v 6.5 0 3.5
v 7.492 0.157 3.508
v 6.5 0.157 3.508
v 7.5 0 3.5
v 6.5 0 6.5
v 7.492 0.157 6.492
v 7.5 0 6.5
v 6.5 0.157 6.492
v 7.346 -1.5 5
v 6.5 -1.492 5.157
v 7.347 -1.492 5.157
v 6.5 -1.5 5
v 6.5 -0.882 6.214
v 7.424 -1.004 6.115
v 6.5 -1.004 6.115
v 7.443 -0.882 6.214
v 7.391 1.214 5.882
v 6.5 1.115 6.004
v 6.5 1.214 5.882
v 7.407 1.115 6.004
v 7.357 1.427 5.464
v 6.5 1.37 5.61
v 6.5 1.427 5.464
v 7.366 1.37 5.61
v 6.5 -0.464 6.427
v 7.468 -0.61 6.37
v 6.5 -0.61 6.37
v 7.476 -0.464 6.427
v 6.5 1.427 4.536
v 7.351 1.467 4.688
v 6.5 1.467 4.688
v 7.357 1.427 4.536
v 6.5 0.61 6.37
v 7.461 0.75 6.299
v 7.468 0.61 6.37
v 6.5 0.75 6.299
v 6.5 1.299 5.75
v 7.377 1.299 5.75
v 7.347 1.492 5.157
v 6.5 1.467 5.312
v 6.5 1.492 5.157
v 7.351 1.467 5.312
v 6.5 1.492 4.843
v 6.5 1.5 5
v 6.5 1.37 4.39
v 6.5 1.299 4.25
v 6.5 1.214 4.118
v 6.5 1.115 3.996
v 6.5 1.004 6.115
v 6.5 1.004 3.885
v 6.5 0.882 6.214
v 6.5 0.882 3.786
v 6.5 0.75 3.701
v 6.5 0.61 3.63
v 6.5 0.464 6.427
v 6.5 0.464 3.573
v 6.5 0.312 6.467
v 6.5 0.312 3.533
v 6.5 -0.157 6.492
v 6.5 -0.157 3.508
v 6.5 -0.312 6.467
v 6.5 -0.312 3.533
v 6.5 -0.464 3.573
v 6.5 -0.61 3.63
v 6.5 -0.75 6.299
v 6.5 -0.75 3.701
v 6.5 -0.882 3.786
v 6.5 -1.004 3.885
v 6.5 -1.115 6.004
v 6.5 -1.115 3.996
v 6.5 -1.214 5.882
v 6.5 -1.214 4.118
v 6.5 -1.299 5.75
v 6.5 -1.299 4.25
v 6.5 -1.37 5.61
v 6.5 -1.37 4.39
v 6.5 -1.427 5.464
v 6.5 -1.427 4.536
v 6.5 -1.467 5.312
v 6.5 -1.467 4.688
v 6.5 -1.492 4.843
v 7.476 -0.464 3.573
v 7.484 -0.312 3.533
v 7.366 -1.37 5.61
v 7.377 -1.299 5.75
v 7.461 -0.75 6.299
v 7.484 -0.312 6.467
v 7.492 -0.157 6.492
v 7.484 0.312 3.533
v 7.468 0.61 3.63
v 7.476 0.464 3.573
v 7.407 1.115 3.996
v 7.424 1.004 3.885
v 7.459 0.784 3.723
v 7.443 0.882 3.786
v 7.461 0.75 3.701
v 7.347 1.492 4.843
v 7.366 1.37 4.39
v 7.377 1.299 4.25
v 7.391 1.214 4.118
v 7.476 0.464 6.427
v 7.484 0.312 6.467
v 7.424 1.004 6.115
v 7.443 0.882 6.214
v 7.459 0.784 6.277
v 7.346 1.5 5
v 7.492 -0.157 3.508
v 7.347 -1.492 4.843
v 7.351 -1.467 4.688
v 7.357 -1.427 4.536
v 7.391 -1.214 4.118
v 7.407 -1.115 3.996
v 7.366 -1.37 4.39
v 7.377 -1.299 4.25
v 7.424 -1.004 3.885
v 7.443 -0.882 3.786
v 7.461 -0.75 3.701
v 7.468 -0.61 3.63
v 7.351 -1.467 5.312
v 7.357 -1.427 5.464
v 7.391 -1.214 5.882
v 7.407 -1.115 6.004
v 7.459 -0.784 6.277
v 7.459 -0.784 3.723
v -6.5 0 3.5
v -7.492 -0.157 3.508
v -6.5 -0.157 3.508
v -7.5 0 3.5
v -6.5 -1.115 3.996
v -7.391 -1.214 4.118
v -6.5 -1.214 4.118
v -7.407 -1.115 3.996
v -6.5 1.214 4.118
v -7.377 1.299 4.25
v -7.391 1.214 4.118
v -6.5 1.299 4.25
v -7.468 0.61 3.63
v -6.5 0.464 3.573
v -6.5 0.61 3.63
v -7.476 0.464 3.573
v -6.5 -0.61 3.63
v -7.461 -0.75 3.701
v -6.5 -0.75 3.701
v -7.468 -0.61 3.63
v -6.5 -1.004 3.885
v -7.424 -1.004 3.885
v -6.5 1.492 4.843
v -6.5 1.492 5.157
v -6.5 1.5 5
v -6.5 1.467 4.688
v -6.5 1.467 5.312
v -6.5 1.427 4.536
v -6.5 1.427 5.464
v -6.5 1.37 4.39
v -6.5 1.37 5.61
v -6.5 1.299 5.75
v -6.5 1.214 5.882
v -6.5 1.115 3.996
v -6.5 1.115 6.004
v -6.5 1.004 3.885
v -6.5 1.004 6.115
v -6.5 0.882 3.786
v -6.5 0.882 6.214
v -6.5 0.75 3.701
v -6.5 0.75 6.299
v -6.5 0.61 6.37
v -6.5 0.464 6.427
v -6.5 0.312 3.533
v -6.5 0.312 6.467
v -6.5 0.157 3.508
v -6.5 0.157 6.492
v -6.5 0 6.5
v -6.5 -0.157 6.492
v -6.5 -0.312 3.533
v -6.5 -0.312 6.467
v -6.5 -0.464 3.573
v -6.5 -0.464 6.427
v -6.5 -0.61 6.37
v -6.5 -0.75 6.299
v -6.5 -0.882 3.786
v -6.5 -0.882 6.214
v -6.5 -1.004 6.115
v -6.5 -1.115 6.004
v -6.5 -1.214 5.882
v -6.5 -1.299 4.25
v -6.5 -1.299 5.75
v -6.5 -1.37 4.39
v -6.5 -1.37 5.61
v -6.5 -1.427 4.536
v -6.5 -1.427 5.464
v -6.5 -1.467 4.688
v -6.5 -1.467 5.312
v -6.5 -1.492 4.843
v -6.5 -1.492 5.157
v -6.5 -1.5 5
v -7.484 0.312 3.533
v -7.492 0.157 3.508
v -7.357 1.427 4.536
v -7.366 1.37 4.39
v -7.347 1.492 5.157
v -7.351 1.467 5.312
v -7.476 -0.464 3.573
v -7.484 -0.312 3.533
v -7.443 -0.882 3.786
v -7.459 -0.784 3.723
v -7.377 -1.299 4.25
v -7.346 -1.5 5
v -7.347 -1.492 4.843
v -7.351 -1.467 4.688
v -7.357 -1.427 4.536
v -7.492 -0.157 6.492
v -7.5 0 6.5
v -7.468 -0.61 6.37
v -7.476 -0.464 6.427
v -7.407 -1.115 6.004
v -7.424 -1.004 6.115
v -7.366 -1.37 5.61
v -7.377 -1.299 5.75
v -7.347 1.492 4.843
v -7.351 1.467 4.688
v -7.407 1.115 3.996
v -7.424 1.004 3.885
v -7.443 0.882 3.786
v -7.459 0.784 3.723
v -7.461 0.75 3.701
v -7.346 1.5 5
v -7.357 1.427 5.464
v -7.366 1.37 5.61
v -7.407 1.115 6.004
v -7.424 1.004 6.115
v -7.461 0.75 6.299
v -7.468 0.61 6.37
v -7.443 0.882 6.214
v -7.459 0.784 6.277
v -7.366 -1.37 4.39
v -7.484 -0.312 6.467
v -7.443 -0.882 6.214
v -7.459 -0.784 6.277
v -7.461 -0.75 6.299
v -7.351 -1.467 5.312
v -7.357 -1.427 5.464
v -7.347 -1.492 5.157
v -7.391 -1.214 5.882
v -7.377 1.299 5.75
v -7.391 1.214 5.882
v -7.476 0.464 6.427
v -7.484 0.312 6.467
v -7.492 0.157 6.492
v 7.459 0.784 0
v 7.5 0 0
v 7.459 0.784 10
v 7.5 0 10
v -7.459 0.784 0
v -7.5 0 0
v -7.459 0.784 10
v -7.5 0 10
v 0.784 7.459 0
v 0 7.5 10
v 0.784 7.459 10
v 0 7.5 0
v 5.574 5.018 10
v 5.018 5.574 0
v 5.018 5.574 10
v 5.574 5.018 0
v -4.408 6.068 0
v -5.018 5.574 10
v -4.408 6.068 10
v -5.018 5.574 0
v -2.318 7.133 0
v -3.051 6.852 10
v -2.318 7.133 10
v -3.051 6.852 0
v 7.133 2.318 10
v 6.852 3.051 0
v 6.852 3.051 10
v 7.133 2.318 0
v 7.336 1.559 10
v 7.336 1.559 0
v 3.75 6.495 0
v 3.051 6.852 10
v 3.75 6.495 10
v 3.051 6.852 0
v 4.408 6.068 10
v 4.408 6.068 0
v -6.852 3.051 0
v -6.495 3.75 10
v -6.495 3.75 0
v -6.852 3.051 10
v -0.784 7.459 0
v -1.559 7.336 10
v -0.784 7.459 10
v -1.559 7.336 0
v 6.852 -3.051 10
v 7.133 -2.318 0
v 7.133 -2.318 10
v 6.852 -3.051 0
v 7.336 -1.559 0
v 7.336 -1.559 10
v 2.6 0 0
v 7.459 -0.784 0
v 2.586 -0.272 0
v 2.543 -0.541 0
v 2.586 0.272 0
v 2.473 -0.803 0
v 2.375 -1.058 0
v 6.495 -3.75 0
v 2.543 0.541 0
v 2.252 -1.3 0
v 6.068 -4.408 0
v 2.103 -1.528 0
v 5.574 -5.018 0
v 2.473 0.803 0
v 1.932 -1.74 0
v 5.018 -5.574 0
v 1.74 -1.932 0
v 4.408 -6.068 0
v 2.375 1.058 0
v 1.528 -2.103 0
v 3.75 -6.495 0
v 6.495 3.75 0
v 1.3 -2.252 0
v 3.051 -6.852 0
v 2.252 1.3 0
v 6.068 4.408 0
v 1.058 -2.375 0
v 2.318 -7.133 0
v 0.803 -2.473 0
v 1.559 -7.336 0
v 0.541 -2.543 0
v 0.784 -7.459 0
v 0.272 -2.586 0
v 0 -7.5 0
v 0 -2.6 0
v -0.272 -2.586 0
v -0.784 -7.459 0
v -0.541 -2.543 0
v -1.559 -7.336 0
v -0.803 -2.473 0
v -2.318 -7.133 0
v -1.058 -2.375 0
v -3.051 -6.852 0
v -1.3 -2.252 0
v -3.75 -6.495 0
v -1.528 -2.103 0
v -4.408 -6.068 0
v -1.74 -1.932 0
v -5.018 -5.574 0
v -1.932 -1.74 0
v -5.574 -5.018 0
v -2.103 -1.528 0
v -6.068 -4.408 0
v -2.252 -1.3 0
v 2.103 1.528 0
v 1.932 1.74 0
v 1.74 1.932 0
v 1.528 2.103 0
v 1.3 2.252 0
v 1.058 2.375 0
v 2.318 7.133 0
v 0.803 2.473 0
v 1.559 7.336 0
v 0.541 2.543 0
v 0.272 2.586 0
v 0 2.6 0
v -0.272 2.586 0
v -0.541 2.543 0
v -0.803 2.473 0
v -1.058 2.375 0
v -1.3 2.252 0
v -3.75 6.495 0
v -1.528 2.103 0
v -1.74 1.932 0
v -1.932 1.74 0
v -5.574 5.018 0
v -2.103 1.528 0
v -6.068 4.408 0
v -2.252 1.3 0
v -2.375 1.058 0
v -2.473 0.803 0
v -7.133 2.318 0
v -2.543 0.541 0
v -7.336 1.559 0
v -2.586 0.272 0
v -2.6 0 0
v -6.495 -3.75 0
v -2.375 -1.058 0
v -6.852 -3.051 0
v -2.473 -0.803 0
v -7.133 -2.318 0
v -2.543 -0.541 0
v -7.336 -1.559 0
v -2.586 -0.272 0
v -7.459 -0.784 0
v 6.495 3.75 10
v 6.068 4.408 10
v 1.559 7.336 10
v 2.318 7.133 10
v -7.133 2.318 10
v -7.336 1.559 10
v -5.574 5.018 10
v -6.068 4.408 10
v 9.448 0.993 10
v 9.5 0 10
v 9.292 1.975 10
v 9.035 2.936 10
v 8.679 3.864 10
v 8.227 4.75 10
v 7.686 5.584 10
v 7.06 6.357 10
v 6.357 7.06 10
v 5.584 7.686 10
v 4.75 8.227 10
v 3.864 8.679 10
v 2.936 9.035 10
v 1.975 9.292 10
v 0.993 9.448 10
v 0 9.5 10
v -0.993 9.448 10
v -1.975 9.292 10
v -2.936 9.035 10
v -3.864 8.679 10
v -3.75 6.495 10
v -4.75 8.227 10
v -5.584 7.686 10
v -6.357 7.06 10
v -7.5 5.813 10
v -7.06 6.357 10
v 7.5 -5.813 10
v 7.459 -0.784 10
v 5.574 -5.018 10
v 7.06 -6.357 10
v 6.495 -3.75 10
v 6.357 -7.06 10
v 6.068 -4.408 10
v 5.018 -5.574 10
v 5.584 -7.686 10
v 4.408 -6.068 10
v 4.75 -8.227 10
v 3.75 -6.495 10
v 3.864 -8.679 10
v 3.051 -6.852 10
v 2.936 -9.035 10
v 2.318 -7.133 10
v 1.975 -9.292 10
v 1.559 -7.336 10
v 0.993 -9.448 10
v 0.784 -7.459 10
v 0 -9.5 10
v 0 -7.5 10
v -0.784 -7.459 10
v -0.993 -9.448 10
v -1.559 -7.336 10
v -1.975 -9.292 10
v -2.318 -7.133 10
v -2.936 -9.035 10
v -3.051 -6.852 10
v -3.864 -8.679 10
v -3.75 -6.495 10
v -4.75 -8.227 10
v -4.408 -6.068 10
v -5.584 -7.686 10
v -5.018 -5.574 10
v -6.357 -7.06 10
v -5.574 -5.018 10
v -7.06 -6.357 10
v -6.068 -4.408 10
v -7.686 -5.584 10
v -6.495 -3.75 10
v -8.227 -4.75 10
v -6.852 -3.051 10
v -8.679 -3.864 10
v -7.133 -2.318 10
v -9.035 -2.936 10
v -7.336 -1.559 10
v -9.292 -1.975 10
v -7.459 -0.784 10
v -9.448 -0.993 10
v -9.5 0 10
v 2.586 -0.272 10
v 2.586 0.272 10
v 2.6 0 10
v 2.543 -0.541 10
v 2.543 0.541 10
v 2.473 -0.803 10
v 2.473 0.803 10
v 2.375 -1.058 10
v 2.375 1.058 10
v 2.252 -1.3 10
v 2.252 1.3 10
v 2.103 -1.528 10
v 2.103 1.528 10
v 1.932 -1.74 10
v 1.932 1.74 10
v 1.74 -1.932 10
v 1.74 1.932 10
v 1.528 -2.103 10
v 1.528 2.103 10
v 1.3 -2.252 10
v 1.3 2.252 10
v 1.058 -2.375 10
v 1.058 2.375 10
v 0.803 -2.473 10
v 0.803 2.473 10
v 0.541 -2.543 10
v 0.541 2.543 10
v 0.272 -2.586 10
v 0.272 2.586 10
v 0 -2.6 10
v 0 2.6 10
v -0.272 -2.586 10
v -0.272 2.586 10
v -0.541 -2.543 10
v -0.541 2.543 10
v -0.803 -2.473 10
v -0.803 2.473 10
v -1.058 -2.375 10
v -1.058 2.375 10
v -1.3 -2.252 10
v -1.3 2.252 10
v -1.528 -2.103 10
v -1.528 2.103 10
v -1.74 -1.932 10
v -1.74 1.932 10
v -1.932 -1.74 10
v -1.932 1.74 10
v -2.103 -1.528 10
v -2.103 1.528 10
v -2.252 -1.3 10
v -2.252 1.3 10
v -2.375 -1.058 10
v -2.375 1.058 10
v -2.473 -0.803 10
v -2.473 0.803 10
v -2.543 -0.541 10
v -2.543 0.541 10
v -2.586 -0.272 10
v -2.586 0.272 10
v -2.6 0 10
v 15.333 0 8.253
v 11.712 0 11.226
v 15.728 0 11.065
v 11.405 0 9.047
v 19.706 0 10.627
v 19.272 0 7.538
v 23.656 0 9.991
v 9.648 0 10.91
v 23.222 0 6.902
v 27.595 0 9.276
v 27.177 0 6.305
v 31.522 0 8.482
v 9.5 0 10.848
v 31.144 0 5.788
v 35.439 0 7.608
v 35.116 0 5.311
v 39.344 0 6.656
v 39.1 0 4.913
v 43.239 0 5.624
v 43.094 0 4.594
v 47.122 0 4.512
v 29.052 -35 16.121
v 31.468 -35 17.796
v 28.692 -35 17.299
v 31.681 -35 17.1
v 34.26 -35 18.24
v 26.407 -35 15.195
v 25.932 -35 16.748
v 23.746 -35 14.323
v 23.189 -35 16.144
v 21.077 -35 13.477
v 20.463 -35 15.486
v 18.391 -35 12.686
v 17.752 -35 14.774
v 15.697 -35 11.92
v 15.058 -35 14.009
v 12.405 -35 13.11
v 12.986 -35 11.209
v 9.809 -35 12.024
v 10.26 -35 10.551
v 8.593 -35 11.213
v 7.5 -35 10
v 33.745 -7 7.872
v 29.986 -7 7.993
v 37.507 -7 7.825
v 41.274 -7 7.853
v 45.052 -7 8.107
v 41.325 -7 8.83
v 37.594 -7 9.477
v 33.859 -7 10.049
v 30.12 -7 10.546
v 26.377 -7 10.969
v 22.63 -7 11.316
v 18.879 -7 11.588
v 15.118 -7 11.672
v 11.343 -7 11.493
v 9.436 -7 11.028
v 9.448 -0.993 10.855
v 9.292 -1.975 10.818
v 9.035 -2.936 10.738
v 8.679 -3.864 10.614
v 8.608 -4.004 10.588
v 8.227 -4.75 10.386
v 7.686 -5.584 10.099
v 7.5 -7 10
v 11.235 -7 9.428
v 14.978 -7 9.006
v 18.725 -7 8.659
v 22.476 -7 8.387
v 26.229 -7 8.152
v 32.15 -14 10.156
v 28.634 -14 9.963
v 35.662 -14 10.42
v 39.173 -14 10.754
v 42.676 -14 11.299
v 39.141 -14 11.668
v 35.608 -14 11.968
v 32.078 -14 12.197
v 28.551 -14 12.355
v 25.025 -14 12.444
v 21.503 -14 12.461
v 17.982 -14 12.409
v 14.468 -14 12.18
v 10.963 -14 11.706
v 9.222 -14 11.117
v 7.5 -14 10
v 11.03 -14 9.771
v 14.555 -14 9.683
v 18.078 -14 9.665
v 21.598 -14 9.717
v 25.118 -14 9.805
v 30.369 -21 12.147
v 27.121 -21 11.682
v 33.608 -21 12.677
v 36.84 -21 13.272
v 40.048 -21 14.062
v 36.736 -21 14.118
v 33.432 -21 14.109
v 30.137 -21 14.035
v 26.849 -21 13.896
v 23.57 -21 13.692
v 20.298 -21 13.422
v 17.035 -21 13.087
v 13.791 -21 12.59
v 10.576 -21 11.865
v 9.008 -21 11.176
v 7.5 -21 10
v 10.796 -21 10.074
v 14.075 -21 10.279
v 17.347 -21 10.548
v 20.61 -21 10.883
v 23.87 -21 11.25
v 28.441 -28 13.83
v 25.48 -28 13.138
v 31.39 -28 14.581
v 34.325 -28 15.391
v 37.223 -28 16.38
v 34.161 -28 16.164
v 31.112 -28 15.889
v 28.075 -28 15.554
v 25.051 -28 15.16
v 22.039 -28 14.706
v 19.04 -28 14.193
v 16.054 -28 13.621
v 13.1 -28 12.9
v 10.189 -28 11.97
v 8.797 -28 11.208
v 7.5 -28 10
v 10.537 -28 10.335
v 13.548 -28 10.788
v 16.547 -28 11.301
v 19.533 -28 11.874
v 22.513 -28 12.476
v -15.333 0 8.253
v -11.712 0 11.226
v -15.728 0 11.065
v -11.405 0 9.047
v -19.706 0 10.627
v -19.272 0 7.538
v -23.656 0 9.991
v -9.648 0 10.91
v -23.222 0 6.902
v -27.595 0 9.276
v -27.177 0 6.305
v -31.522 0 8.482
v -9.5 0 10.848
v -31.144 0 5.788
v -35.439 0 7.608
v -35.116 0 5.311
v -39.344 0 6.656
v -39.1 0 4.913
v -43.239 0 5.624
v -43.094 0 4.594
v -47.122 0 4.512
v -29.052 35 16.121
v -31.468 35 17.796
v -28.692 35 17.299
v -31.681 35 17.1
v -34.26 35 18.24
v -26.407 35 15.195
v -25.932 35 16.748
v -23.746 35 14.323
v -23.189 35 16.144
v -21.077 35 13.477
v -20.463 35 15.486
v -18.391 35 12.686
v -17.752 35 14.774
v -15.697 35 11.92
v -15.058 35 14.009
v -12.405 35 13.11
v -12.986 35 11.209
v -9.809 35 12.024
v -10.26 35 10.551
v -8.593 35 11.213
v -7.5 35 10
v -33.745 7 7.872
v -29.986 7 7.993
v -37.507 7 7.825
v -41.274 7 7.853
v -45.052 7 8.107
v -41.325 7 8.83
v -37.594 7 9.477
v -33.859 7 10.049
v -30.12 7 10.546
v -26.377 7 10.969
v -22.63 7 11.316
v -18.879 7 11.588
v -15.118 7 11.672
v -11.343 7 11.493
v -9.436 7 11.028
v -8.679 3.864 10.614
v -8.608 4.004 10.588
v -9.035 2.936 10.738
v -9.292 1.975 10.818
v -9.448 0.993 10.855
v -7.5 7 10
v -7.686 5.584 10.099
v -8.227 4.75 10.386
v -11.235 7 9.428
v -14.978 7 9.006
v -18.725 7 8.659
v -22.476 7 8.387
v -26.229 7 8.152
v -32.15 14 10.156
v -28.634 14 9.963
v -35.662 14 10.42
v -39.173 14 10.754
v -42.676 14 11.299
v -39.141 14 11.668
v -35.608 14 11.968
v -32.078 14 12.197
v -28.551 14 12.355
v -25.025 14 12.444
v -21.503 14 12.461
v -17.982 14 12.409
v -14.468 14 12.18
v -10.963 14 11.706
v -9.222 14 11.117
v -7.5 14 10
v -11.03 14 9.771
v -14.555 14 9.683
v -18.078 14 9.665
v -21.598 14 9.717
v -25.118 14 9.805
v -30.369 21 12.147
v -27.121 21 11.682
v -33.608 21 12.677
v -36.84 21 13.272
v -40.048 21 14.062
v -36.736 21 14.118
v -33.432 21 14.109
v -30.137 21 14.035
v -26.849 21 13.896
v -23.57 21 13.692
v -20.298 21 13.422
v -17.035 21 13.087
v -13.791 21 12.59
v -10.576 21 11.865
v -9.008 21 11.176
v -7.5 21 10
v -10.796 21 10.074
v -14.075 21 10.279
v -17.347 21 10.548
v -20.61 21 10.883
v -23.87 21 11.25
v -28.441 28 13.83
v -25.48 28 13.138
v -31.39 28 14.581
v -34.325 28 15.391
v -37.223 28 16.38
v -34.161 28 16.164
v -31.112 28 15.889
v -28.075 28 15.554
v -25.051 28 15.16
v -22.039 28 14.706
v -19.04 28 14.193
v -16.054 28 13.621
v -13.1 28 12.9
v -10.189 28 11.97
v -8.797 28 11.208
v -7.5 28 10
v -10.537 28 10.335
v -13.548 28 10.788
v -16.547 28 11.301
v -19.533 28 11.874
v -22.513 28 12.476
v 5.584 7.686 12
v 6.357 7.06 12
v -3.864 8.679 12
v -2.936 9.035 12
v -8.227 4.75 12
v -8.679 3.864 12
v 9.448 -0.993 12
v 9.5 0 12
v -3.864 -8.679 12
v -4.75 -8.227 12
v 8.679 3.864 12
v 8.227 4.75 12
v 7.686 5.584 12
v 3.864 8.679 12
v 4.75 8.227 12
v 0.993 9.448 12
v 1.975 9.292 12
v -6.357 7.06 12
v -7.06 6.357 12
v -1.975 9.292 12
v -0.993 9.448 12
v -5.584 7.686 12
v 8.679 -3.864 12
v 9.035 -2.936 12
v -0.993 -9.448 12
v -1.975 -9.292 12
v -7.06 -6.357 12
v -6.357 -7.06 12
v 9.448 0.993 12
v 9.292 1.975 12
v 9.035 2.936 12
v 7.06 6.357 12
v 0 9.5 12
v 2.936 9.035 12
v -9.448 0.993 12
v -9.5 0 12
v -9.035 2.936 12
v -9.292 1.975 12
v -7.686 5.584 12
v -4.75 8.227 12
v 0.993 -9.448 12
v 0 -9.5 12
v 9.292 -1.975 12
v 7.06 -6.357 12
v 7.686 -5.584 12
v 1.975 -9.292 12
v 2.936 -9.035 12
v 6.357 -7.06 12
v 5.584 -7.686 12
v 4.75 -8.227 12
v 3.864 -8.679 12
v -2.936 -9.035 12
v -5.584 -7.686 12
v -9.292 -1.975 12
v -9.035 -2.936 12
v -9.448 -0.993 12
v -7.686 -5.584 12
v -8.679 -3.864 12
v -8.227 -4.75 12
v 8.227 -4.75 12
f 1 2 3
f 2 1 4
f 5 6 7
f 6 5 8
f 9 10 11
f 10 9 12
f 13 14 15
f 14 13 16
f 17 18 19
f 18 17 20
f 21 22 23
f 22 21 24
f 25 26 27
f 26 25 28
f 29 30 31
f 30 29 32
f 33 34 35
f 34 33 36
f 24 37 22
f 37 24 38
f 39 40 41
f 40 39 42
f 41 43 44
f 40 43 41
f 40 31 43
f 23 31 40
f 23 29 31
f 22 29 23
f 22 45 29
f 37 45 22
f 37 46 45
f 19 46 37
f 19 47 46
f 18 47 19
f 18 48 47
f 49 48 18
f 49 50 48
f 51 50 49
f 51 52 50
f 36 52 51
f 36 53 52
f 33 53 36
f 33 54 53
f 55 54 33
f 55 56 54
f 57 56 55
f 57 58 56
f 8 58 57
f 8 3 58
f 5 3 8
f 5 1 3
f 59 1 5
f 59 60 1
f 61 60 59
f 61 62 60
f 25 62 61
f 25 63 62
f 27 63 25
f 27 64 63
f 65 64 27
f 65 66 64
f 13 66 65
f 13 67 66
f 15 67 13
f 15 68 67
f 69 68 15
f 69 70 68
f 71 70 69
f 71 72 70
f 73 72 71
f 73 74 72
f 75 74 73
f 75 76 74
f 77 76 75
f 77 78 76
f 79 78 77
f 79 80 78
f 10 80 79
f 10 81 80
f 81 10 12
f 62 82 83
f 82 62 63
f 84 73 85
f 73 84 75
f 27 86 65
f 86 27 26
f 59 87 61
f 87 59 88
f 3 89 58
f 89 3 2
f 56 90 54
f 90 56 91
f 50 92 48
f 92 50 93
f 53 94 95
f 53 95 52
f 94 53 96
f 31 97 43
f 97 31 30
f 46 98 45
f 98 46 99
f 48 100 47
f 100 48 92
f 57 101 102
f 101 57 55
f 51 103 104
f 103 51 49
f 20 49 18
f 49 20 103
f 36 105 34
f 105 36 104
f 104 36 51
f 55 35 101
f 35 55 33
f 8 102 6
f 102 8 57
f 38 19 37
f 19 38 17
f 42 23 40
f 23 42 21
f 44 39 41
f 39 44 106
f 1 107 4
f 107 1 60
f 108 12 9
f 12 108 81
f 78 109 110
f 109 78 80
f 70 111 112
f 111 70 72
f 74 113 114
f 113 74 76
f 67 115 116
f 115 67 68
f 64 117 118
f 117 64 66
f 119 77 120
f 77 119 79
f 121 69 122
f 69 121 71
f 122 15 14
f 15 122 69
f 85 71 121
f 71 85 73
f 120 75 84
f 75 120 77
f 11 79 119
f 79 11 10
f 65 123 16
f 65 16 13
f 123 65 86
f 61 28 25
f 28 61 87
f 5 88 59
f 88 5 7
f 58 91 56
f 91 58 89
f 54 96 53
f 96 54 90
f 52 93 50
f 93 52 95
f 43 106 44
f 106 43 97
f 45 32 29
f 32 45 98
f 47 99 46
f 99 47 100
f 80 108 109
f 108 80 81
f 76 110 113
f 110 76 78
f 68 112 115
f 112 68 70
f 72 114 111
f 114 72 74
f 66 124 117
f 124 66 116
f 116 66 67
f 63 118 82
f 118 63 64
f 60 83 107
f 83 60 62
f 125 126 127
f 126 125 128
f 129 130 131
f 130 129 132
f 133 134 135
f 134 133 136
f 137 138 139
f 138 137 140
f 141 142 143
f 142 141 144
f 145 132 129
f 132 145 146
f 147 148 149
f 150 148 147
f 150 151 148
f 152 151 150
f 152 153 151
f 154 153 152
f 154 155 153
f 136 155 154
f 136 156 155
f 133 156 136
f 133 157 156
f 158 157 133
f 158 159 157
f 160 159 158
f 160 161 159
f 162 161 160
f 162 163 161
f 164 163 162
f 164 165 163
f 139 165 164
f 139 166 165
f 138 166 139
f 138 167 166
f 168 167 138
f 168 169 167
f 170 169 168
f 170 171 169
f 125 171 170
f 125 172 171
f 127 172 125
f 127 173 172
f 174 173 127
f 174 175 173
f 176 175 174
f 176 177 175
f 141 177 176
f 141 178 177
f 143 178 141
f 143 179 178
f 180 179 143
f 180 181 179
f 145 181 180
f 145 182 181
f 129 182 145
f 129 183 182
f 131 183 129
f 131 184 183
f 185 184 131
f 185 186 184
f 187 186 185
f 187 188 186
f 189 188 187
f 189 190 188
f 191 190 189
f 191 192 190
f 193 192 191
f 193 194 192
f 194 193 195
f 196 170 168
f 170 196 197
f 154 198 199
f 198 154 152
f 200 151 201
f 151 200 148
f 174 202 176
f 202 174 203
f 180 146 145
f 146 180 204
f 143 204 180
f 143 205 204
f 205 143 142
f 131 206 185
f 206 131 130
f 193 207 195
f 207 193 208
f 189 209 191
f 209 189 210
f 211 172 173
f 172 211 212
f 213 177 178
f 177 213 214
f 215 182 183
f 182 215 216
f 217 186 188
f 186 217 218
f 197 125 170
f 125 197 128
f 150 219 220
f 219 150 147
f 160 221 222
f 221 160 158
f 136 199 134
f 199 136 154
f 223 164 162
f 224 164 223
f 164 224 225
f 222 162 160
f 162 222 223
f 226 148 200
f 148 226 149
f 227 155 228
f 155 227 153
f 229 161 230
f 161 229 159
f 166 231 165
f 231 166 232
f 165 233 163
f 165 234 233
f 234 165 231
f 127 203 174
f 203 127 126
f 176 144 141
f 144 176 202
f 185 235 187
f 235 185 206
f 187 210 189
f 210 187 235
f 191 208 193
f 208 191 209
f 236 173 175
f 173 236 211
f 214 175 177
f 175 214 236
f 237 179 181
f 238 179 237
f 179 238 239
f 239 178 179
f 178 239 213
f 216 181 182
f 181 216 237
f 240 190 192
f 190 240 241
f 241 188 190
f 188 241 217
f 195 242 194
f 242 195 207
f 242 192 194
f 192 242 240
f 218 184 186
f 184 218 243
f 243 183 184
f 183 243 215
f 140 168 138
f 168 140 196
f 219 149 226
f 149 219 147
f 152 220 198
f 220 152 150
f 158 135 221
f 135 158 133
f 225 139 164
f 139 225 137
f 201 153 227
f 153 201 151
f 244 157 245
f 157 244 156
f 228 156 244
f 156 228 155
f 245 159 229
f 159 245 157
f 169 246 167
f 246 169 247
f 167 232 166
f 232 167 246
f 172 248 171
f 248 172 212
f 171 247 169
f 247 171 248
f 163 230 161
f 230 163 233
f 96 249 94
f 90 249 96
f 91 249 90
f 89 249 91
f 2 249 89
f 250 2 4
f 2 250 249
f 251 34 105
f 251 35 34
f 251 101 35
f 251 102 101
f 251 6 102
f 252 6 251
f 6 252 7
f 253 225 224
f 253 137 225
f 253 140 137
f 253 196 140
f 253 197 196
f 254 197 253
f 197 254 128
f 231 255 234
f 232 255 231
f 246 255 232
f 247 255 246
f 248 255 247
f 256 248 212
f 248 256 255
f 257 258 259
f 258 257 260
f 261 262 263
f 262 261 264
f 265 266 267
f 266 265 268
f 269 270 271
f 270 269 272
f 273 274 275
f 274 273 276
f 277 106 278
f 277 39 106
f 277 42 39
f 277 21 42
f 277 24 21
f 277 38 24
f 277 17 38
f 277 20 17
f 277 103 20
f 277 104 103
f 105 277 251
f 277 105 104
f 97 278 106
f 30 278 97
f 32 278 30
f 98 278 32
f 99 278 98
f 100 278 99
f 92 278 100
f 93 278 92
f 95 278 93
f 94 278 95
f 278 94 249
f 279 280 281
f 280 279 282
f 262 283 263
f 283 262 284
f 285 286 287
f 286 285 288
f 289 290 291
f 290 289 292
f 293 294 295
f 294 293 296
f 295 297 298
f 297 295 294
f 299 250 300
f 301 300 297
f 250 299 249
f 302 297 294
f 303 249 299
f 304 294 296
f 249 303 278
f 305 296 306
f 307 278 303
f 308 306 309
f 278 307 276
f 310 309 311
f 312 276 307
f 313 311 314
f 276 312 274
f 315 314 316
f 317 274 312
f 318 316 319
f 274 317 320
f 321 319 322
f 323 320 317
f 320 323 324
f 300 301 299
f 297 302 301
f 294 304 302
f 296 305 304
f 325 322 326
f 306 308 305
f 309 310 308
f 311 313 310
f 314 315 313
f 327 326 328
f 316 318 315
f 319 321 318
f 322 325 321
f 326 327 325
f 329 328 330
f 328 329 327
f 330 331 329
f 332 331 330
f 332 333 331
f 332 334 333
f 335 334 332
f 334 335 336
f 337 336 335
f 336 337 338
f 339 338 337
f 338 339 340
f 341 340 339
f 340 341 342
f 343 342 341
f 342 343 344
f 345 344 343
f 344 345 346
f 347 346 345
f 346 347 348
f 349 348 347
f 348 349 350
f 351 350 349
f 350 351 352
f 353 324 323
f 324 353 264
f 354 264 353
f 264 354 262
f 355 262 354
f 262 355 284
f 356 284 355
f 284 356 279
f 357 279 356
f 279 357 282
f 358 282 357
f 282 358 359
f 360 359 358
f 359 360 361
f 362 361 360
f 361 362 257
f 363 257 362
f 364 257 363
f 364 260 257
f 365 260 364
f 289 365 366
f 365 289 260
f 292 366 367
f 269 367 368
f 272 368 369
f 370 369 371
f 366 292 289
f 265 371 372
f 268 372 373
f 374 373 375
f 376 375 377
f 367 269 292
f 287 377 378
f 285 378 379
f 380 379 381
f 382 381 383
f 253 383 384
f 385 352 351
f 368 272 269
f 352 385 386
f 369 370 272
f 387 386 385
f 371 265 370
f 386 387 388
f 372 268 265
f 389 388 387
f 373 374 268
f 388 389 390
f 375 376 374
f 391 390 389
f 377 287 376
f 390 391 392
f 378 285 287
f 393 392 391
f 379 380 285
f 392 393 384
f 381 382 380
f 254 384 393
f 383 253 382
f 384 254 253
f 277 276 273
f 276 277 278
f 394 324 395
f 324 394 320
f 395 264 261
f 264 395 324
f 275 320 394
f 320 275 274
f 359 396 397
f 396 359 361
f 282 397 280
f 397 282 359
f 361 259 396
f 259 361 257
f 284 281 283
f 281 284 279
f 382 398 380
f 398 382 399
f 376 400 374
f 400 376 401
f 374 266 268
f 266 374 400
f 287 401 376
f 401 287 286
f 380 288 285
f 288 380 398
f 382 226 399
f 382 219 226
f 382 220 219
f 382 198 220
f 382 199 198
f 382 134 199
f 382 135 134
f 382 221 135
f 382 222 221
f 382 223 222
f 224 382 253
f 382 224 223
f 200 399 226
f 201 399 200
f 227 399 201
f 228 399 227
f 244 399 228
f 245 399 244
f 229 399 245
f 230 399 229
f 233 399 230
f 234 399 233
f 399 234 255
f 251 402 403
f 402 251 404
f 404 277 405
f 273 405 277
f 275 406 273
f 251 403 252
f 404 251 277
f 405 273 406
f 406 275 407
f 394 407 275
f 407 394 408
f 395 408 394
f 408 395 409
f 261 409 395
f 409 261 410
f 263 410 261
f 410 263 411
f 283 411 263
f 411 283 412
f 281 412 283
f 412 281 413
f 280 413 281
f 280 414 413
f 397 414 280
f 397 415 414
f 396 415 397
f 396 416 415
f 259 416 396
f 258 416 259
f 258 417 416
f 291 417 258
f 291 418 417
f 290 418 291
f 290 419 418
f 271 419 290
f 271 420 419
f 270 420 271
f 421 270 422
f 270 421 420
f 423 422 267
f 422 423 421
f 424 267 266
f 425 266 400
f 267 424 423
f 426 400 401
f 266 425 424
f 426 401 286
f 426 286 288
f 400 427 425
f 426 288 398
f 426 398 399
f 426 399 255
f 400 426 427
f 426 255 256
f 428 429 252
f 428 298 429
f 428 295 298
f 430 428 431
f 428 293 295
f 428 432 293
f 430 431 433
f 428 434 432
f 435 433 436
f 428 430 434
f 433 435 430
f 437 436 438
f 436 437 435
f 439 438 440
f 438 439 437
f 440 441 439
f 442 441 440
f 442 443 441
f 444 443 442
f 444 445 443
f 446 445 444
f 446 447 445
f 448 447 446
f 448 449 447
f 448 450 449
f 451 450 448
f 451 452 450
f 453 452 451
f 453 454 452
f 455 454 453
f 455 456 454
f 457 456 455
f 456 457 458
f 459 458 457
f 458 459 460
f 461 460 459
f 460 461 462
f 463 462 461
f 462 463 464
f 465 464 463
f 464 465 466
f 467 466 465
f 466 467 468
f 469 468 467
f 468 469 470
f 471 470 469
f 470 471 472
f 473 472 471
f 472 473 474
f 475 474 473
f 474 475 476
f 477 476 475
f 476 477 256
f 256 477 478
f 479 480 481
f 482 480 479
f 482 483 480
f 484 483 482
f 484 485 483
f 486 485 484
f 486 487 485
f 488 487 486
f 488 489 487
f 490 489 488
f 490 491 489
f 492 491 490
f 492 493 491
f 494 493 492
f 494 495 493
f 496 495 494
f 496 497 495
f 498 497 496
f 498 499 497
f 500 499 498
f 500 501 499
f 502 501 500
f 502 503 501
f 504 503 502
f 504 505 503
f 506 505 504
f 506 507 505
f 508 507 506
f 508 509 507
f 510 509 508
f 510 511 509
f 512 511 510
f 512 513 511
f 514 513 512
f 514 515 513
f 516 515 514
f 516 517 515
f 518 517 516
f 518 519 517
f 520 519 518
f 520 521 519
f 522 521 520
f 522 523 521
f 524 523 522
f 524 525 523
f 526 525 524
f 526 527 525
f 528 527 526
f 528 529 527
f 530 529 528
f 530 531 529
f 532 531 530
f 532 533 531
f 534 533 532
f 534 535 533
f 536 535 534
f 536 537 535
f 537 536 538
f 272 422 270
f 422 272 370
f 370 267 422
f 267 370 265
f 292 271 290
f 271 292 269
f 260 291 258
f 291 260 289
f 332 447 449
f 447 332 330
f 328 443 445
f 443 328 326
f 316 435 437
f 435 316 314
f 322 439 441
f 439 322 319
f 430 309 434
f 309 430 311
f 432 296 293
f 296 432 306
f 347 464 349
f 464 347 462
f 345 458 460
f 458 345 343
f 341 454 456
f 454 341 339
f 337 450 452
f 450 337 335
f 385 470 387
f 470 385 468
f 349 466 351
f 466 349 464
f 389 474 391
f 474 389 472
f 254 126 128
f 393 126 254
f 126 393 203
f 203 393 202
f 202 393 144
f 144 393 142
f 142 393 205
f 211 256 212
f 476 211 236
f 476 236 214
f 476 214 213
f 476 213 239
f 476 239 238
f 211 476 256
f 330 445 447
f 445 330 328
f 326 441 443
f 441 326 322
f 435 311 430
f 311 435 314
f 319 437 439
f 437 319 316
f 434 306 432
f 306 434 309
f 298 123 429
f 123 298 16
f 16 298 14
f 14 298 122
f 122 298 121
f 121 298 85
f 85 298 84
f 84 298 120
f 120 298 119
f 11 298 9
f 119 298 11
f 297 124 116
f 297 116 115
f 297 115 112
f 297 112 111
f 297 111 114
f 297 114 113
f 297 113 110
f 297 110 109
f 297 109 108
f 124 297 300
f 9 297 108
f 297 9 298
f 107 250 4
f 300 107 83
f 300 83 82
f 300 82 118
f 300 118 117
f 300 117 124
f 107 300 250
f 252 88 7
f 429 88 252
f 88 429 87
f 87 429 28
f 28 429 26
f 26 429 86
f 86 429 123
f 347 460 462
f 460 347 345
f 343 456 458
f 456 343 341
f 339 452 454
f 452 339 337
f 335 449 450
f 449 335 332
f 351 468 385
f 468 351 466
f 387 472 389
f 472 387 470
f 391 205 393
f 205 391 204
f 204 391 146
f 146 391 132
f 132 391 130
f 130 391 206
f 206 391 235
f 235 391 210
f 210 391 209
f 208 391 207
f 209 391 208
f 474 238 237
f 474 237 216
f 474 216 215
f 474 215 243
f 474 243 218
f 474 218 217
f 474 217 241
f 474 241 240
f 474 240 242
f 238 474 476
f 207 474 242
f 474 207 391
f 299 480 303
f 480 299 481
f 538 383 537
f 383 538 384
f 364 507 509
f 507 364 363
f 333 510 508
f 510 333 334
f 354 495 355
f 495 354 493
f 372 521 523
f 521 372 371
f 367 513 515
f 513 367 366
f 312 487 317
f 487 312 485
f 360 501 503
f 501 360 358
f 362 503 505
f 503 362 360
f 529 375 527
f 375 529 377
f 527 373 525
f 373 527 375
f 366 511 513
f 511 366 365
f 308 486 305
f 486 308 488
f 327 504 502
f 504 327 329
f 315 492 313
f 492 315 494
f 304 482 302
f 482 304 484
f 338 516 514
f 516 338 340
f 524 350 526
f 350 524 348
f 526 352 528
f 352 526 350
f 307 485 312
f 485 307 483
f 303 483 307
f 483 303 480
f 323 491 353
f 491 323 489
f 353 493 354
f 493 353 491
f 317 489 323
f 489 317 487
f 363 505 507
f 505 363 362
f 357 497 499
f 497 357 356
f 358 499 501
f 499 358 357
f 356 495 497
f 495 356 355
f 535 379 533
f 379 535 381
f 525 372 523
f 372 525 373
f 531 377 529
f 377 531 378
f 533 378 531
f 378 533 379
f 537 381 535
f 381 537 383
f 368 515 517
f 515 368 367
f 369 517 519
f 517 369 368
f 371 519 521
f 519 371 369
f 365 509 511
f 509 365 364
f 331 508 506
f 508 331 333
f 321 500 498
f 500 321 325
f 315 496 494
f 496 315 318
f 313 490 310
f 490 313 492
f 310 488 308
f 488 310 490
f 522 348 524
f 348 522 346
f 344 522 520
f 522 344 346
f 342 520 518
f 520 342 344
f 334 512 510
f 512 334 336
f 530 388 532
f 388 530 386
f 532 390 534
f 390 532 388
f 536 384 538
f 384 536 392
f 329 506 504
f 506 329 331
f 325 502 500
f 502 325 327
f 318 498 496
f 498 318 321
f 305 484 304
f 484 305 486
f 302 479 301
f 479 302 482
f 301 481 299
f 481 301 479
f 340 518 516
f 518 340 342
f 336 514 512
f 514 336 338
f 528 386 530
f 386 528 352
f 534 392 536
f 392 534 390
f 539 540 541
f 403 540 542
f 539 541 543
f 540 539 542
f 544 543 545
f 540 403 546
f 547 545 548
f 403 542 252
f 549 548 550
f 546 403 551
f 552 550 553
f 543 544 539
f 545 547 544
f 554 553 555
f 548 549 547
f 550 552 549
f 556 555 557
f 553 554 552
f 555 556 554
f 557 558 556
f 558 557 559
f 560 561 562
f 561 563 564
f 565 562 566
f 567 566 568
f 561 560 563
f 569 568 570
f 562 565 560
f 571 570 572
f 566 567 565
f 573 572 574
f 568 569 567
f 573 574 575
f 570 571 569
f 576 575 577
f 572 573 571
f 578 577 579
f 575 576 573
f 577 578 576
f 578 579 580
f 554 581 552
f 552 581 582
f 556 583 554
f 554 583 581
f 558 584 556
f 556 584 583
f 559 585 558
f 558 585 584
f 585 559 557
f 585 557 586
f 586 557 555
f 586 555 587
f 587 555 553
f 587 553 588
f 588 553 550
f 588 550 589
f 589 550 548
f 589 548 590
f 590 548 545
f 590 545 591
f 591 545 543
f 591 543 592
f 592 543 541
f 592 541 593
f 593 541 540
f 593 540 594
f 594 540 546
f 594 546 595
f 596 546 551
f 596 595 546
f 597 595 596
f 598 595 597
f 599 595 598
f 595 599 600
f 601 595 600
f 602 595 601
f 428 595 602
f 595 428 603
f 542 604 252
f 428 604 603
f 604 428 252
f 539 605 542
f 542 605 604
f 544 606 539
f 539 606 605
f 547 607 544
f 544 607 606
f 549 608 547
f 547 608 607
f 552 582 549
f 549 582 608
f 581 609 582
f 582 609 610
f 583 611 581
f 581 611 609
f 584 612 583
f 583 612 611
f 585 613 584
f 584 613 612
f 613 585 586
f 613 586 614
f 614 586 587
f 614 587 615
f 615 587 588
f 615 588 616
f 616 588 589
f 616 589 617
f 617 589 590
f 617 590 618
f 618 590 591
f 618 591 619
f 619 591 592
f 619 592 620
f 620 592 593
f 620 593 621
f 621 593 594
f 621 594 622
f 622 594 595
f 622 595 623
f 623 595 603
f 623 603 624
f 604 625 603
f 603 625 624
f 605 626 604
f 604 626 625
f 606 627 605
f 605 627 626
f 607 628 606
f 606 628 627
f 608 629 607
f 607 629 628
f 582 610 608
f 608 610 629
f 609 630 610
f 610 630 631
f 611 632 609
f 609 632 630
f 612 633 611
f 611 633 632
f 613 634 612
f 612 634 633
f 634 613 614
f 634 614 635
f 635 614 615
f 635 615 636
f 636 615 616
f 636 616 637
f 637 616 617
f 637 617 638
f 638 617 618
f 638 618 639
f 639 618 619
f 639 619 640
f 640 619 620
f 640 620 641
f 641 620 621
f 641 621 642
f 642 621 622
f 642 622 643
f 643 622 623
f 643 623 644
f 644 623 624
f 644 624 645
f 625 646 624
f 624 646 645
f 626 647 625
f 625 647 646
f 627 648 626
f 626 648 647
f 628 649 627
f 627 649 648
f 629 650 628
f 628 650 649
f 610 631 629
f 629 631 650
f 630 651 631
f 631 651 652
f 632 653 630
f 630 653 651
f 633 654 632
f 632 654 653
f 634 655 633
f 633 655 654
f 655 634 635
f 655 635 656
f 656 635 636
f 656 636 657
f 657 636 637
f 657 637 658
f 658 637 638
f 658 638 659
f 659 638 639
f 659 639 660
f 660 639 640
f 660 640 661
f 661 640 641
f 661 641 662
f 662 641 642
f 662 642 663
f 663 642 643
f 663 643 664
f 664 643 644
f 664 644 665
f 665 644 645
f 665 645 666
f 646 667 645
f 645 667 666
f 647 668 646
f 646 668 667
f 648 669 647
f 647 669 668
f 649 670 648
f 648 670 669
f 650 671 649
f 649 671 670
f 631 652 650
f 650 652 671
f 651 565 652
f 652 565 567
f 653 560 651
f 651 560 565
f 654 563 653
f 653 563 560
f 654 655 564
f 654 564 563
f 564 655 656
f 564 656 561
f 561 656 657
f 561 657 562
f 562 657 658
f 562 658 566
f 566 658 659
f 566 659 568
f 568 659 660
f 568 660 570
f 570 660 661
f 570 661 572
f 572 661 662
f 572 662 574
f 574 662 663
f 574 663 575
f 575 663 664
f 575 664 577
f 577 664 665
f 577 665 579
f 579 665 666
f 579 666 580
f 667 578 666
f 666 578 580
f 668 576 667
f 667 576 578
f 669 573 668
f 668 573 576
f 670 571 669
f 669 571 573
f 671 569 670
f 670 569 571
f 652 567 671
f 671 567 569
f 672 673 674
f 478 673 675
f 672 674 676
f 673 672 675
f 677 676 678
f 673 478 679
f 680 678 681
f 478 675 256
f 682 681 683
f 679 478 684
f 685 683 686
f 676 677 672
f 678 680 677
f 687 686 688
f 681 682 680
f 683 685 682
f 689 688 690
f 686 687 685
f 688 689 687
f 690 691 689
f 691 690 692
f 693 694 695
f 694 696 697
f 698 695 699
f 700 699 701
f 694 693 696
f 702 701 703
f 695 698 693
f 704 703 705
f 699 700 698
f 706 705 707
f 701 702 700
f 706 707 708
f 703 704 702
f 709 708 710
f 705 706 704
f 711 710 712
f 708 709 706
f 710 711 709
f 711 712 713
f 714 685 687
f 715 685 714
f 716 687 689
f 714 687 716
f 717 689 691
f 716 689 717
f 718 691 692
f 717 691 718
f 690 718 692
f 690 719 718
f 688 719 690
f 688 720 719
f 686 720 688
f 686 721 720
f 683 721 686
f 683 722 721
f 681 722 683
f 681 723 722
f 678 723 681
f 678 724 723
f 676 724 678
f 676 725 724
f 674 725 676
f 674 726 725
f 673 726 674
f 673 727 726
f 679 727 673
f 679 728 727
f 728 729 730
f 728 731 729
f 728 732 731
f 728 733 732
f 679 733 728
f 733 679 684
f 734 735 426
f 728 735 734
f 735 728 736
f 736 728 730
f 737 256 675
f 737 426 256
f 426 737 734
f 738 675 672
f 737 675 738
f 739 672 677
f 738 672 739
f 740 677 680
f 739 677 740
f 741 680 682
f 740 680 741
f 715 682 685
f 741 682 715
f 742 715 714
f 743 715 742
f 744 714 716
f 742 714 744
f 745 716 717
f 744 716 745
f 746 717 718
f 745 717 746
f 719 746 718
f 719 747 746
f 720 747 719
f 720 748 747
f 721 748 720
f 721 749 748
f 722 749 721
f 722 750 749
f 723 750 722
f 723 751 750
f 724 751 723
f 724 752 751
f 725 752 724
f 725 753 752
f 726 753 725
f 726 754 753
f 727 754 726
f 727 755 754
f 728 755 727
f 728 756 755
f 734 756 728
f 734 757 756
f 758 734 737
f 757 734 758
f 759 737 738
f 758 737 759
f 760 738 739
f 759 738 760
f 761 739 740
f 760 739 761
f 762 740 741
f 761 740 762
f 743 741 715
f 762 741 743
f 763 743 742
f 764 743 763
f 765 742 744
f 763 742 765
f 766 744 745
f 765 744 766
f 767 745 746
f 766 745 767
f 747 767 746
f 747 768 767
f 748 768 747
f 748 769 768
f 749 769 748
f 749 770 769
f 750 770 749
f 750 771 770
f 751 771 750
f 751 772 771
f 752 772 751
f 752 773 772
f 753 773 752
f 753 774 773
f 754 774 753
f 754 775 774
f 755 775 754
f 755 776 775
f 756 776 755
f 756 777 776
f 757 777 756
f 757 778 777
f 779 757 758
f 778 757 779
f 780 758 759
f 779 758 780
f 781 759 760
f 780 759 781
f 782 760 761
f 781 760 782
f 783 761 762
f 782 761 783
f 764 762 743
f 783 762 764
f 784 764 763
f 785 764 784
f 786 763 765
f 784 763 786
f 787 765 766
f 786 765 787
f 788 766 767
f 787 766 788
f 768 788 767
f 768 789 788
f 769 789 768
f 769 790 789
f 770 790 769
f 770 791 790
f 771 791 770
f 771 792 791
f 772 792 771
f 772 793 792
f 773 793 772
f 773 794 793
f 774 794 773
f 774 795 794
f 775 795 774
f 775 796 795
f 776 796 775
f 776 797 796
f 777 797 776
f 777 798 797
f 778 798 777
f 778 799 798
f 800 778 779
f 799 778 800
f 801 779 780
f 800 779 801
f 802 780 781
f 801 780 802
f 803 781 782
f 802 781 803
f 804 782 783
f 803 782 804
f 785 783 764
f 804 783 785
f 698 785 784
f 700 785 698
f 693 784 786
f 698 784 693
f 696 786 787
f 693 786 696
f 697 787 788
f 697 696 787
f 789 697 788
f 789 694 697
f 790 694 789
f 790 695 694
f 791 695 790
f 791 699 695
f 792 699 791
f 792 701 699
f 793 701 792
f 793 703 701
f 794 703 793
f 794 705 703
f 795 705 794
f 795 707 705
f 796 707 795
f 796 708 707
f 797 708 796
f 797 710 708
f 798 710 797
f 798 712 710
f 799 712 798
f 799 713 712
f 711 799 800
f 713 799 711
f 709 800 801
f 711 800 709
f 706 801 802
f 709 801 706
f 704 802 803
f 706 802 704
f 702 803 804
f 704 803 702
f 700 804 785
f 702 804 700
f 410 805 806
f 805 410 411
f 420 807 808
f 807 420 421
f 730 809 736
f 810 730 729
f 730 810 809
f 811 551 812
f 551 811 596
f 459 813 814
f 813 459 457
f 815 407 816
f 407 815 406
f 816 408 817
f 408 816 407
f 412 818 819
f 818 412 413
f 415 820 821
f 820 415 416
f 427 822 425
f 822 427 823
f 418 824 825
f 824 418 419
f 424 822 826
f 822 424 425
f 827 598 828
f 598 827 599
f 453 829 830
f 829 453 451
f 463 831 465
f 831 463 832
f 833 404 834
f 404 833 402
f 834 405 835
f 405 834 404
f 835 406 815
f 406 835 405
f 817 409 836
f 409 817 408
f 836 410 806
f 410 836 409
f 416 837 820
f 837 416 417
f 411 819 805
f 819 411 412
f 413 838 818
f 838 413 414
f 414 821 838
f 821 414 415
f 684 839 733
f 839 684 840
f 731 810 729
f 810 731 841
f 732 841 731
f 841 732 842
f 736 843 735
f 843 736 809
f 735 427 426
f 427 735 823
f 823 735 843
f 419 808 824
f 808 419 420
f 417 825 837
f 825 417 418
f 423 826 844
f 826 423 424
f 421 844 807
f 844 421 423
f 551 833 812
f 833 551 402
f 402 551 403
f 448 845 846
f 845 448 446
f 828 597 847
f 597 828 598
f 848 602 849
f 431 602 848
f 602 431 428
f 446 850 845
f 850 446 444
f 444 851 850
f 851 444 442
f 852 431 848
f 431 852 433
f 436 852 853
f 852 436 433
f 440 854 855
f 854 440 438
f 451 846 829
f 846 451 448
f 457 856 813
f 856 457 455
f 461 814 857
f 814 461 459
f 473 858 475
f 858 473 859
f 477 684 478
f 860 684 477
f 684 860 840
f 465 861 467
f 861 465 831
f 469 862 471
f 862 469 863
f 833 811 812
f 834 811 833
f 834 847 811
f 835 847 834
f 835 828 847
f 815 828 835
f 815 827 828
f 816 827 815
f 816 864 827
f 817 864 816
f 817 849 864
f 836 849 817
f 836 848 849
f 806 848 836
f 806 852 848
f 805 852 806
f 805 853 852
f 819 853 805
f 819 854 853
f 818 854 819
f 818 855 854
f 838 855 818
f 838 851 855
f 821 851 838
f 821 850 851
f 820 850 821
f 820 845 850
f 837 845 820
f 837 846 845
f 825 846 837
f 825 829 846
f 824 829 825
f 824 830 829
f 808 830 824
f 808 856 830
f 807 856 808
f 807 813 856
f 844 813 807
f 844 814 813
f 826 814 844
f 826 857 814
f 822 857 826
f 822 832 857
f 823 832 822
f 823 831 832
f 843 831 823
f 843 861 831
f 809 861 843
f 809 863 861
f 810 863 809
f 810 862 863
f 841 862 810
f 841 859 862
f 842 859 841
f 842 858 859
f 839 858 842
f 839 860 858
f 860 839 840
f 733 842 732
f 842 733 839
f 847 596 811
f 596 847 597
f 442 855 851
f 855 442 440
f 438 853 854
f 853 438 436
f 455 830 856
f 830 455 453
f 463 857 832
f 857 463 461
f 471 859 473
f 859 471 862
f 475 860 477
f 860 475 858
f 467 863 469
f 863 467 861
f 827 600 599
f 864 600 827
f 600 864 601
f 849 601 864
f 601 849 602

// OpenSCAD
/*
 * COMPLETE MOTOR + IMPELLER ASSEMBLY
 * For CFD fluid testing and visualization
 * 
 * This model includes:
 *   - Brushless motor (2204-2206 size)
 *   - Motor shaft (5mm)
 *   - Impeller hub
 *   - 3 impeller variants (bladeless, AI-blades, hybrid)
 *   - Mounting plate
 * 
 * Usage:
 *   - Render full assembly: F6
 *   - Export for CFD: Set EXPORT_MODE = "impeller_only"
 *   - Change design: Set IMPELLER_TYPE = "bladeless" | "bladed" | "hybrid"
 */

// ============================================================================
// CONFIGURATION PARAMETERS (AI-Optimizable)
// ============================================================================

// General Settings
$fn = 60;  // Resolution for CFD export (increase to 100 for final)

// Export Mode
EXPORT_MODE = "impeller_only";  // Options: "full_assembly", "impeller_only", "motor_only"

// Impeller Type
IMPELLER_TYPE = "bladed";  // Options: "bladeless", "bladed", "hybrid"

// Motor Specifications (2204-2206 brushless)
MOTOR_DIAMETER = 28;         // mm
MOTOR_HEIGHT = 25;           // mm
MOTOR_SHAFT_DIAMETER = 5;    // mm (standard)
MOTOR_SHAFT_LENGTH = 15;     // mm (extends above motor)
MOTOR_MOUNT_PATTERN = 16;    // mm (16x16 or 19x19 common)
MOTOR_SCREW_DIAMETER = 3;    // M3 screws

// Impeller Parameters - BLADELESS
BLADELESS_OUTER_DIAMETER = 90;    // mm
BLADELESS_AIR_GAP = 0.8;          // mm (optimize: 0.6-1.2)
BLADELESS_THROAT_RATIO = 0.72;    // (optimize: 0.65-0.80)
BLADELESS_EXPANSION_ANGLE = 18;   // degrees (optimize: 12-25)
BLADELESS_RING_THICKNESS = 3;     // mm (optimize: 2-4)
BLADELESS_HEIGHT = 24;            // mm

// Impeller Parameters - BLADED
BLADED_DIAMETER = 85;
BLADED_HUB_DIAMETER = 15;         // mm (optimize: 12-20)
BLADED_BLADE_COUNT = 2;
BLADED_ROOT_CHORD = 40;
BLADED_TIP_CHORD_RATIO = 0.7;    // (optimize: 0.6-0.8)
BLADED_BLADE_THICKNESS = 2;       // mm (optimize: 1.5-3)
BLADED_BLADE_TWIST = -25;
BLADED_ATTACK_ANGLE = -8;
BLADED_BLADE_HEIGHT = 12;         // mm (optimize: 10-15)

// Hub Parameters
HUB_DIAMETER = 15;
HUB_HEIGHT = 10;
HUB_SET_SCREW_DIAMETER = 3;  // M3 set screw

// Mounting Plate
PLATE_SIZE = 50;
PLATE_THICKNESS = 3;

// ============================================================================
// MOTOR MODEL
// ============================================================================

module brushless_motor_2204() {
    color("DarkSlateGray") {
        // Motor can (bell)
        difference() {
            cylinder(h=MOTOR_HEIGHT, d=MOTOR_DIAMETER);
            
            // Hollow inside (weight reduction visualization)
            translate([0, 0, -0.5])
                cylinder(h=MOTOR_HEIGHT - 5, d=MOTOR_DIAMETER - 4);
            
            // Mounting holes
            for(i = [0:3]) {
                rotate([0, 0, i * 90])
                    translate([MOTOR_MOUNT_PATTERN/2, 0, MOTOR_HEIGHT/2])
                        rotate([90, 0, 0])
                            cylinder(h=MOTOR_DIAMETER, d=MOTOR_SCREW_DIAMETER, center=true);
            }
        }
        
        // Motor base
        translate([0, 0, -3])
            cylinder(h=3, d=MOTOR_DIAMETER - 2);
    }
    
    // Motor shaft
    color("Silver")
        translate([0, 0, MOTOR_HEIGHT])
            cylinder(h=MOTOR_SHAFT_LENGTH, d=MOTOR_SHAFT_DIAMETER);
    
    // Shaft tip (for hub attachment)
    color("Silver")
        translate([0, 0, MOTOR_HEIGHT + MOTOR_SHAFT_LENGTH])
            cylinder(h=2, d=MOTOR_SHAFT_DIAMETER - 0.5);
}

// ============================================================================
// IMPELLER HUB
// ============================================================================

module impeller_hub() {
    color("Gray")
    difference() {
        // Hub body
        cylinder(h=HUB_HEIGHT, d=HUB_DIAMETER);
        
        // Shaft hole (5mm + 0.2mm clearance)
        translate([0, 0, -0.5])
            cylinder(h=HUB_HEIGHT + 1, d=MOTOR_SHAFT_DIAMETER + 0.2);
        
        // Set screw holes (2x for balance)
        for(i = [0:1]) {
            rotate([0, 0, i * 180])
                translate([HUB_DIAMETER/2 - 1, 0, HUB_HEIGHT/2])
                    rotate([0, 90, 0])
                        cylinder(h=5, d=HUB_SET_SCREW_DIAMETER);
        }
    }
}

// ============================================================================
// BLADELESS IMPELLER (Dyson-style)
// ============================================================================

module bladeless_impeller() {
    outer_r = BLADELESS_OUTER_DIAMETER / 2;
    throat_r = outer_r * BLADELESS_THROAT_RATIO;
    gap = BLADELESS_AIR_GAP;
    
    color("SkyBlue", 0.7)
    difference() {
        // Outer ring
        rotate_extrude()
            translate([outer_r - BLADELESS_RING_THICKNESS/2, BLADELESS_HEIGHT/2, 0])
                circle(d=BLADELESS_RING_THICKNESS + BLADELESS_HEIGHT);
        
        // Inner air gap (critical for Coanda effect)
        rotate_extrude()
            translate([outer_r - gap - BLADELESS_RING_THICKNESS/2, BLADELESS_HEIGHT/2, 0])
                circle(d=BLADELESS_RING_THICKNESS + BLADELESS_HEIGHT - 2*gap);
    }
    
    // Base plate (connects to hub)
    color("SkyBlue", 0.7)
    translate([0, 0, -2])
        difference() {
            cylinder(h=2, d=outer_r * 2);
            translate([0, 0, -0.5])
                cylinder(h=3, d=HUB_DIAMETER + 1);
        }
    
    // Air inlet (bell-shaped for smooth flow)
    color("SkyBlue", 0.7)
    translate([0, 0, -2]) {
        difference() {
            cylinder(h=15, d1=throat_r * 2, d2=outer_r * 1.8);
            translate([0, 0, -0.5])
                cylinder(h=16, d1=throat_r * 2 - 3, d2=outer_r * 1.8 - 3);
        }
    }
}

// ============================================================================
// AI-OPTIMIZED BLADED IMPELLER (NACA 2412 profile)
// ============================================================================

module naca_2412_blade(chord, height, twist_angle, attack_angle) {
    // Simplified NACA 2412 airfoil profile
    // Using parametric approximation for 3D printing
    
    color("LightSteelBlue", 0.8)
    linear_extrude(height=height, twist=twist_angle, scale=BLADED_TIP_CHORD_RATIO) {
        rotate([0, 0, attack_angle])
        polygon([
            // Upper surface (cambered)
            [0, 0],
            [chord * 0.05, chord * 0.03],
            [chord * 0.1, chord * 0.045],
            [chord * 0.2, chord * 0.055],
            [chord * 0.3, chord * 0.058],
            [chord * 0.4, chord * 0.056],
            [chord * 0.5, chord * 0.052],
            [chord * 0.6, chord * 0.046],
            [chord * 0.7, chord * 0.038],
            [chord * 0.8, chord * 0.028],
            [chord * 0.9, chord * 0.016],
            [chord * 1.0, chord * 0.002],
            // Lower surface (less cambered)
            [chord * 0.9, -chord * 0.010],
            [chord * 0.8, -chord * 0.016],
            [chord * 0.7, -chord * 0.020],
            [chord * 0.6, -chord * 0.022],
            [chord * 0.5, -chord * 0.023],
            [chord * 0.4, -chord * 0.022],
            [chord * 0.3, -chord * 0.020],
            [chord * 0.2, -chord * 0.016],
            [chord * 0.1, -chord * 0.010],
            [chord * 0.05, -chord * 0.005],
        ]);
    }
}

module bladed_impeller() {
    // Blades
    for(i = [0 : BLADED_BLADE_COUNT - 1]) {
        rotate([0, 0, i * (360 / BLADED_BLADE_COUNT)])
            translate([BLADED_HUB_DIAMETER/2, 0, 0])
                rotate([90, 0, 0])
                    naca_2412_blade(
                        BLADED_ROOT_CHORD, 
                        (BLADED_DIAMETER - BLADED_HUB_DIAMETER) / 2,
                        BLADED_BLADE_TWIST,
                        BLADED_ATTACK_ANGLE
                    );
    }
    
    // Hub disk (connects blades)
    color("LightSteelBlue", 0.8)
    cylinder(h=2, d=BLADED_HUB_DIAMETER + 4);
}

// ============================================================================
// HYBRID IMPELLER (Blades inside bladeless ring)
// ============================================================================

module hybrid_impeller() {
    // Outer bladeless ring
    bladeless_impeller();
    
    // Inner bladed impeller (scaled down to fit)
    scale([0.85, 0.85, 1])
        bladed_impeller();
}

// ============================================================================
// MOUNTING PLATE
// ============================================================================

module mounting_plate() {
    color("DimGray")
    difference() {
        // Base plate
        translate([-PLATE_SIZE/2, -PLATE_SIZE/2, 0])
            cube([PLATE_SIZE, PLATE_SIZE, PLATE_THICKNESS]);
        
        // Center hole for motor shaft
        translate([0, 0, -0.5])
            cylinder(h=PLATE_THICKNESS + 1, d=MOTOR_DIAMETER + 2);
        
        // Motor mounting holes
        for(i = [0:3]) {
            rotate([0, 0, i * 90])
                translate([MOTOR_MOUNT_PATTERN/2, 0, -0.5])
                    cylinder(h=PLATE_THICKNESS + 1, d=MOTOR_SCREW_DIAMETER);
        }
    }
}

// ============================================================================
// COMPLETE ASSEMBLY
// ============================================================================

module complete_assembly() {
    // Mounting plate (bottom)
    translate([0, 0, -PLATE_THICKNESS])
        mounting_plate();
    
    // Motor
    translate([0, 0, 0])
        brushless_motor_2204();
    
    // Hub (on shaft)
    translate([0, 0, MOTOR_HEIGHT + MOTOR_SHAFT_LENGTH - 2])
        impeller_hub();
    
    // Impeller (on hub)
    translate([0, 0, MOTOR_HEIGHT + MOTOR_SHAFT_LENGTH + HUB_HEIGHT]) {
        if (IMPELLER_TYPE == "bladeless") {
            bladeless_impeller();
        } else if (IMPELLER_TYPE == "bladed") {
            bladed_impeller();
        } else if (IMPELLER_TYPE == "hybrid") {
            hybrid_impeller();
        }
    }
}

// ============================================================================
// RENDER BASED ON EXPORT MODE
// ============================================================================

if (EXPORT_MODE == "full_assembly") {
    complete_assembly();
} 
else if (EXPORT_MODE == "impeller_only") {
    // For CFD testing - impeller + hub only
    impeller_hub();
    translate([0, 0, HUB_HEIGHT]) {
        if (IMPELLER_TYPE == "bladeless") {
            bladeless_impeller();
        } else if (IMPELLER_TYPE == "bladed") {
            bladed_impeller();
        } else if (IMPELLER_TYPE == "hybrid") {
            hybrid_impeller();
        }
    }
}
else if (EXPORT_MODE == "motor_only") {
    brushless_motor_2204();
}

// ============================================================================
// ANNOTATIONS FOR VISUALIZATION
// ============================================================================

// Uncomment to show dimensions
/*
color("Red", 0.3)
translate([BLADED_DIAMETER/2 + 10, 0, 20])
    text(str("Ø", BLADED_DIAMETER, "mm"), size=5, halign="left");

color("Green", 0.3)
translate([0, BLADED_DIAMETER/2 + 10, 20])
    text(str(BLADED_BLADE_COUNT, " blades"), size=5, halign="center");
*/

// ============================================================================
// EXPORT NOTES
// ============================================================================

/*
 * TO EXPORT FOR CFD TESTING:
 * 
 * 1. Set EXPORT_MODE = "impeller_only"
 * 2. Set IMPELLER_TYPE = "bladeless" (or "bladed" or "hybrid")
 * 3. Press F6 to render
 * 4. File → Export → Export as STL
 * 5. Use filename: impeller_bladeless_fn60.stl
 * 
 * FOR OPTIMIZATION:
 * - Modify parameters at top (marked with "optimize:")
 * - Re-render and export
 * - Upload to SimScale for CFD
 * - Compare results
 * 
 * RECOMMENDED CFD SETTINGS:
 * - Solver: k-omega SST
 * - RPM: 5000, 7000, 9000
 * - Mesh: 3-5M cells
 * - Boundary: Rotating zone on impeller
 */
